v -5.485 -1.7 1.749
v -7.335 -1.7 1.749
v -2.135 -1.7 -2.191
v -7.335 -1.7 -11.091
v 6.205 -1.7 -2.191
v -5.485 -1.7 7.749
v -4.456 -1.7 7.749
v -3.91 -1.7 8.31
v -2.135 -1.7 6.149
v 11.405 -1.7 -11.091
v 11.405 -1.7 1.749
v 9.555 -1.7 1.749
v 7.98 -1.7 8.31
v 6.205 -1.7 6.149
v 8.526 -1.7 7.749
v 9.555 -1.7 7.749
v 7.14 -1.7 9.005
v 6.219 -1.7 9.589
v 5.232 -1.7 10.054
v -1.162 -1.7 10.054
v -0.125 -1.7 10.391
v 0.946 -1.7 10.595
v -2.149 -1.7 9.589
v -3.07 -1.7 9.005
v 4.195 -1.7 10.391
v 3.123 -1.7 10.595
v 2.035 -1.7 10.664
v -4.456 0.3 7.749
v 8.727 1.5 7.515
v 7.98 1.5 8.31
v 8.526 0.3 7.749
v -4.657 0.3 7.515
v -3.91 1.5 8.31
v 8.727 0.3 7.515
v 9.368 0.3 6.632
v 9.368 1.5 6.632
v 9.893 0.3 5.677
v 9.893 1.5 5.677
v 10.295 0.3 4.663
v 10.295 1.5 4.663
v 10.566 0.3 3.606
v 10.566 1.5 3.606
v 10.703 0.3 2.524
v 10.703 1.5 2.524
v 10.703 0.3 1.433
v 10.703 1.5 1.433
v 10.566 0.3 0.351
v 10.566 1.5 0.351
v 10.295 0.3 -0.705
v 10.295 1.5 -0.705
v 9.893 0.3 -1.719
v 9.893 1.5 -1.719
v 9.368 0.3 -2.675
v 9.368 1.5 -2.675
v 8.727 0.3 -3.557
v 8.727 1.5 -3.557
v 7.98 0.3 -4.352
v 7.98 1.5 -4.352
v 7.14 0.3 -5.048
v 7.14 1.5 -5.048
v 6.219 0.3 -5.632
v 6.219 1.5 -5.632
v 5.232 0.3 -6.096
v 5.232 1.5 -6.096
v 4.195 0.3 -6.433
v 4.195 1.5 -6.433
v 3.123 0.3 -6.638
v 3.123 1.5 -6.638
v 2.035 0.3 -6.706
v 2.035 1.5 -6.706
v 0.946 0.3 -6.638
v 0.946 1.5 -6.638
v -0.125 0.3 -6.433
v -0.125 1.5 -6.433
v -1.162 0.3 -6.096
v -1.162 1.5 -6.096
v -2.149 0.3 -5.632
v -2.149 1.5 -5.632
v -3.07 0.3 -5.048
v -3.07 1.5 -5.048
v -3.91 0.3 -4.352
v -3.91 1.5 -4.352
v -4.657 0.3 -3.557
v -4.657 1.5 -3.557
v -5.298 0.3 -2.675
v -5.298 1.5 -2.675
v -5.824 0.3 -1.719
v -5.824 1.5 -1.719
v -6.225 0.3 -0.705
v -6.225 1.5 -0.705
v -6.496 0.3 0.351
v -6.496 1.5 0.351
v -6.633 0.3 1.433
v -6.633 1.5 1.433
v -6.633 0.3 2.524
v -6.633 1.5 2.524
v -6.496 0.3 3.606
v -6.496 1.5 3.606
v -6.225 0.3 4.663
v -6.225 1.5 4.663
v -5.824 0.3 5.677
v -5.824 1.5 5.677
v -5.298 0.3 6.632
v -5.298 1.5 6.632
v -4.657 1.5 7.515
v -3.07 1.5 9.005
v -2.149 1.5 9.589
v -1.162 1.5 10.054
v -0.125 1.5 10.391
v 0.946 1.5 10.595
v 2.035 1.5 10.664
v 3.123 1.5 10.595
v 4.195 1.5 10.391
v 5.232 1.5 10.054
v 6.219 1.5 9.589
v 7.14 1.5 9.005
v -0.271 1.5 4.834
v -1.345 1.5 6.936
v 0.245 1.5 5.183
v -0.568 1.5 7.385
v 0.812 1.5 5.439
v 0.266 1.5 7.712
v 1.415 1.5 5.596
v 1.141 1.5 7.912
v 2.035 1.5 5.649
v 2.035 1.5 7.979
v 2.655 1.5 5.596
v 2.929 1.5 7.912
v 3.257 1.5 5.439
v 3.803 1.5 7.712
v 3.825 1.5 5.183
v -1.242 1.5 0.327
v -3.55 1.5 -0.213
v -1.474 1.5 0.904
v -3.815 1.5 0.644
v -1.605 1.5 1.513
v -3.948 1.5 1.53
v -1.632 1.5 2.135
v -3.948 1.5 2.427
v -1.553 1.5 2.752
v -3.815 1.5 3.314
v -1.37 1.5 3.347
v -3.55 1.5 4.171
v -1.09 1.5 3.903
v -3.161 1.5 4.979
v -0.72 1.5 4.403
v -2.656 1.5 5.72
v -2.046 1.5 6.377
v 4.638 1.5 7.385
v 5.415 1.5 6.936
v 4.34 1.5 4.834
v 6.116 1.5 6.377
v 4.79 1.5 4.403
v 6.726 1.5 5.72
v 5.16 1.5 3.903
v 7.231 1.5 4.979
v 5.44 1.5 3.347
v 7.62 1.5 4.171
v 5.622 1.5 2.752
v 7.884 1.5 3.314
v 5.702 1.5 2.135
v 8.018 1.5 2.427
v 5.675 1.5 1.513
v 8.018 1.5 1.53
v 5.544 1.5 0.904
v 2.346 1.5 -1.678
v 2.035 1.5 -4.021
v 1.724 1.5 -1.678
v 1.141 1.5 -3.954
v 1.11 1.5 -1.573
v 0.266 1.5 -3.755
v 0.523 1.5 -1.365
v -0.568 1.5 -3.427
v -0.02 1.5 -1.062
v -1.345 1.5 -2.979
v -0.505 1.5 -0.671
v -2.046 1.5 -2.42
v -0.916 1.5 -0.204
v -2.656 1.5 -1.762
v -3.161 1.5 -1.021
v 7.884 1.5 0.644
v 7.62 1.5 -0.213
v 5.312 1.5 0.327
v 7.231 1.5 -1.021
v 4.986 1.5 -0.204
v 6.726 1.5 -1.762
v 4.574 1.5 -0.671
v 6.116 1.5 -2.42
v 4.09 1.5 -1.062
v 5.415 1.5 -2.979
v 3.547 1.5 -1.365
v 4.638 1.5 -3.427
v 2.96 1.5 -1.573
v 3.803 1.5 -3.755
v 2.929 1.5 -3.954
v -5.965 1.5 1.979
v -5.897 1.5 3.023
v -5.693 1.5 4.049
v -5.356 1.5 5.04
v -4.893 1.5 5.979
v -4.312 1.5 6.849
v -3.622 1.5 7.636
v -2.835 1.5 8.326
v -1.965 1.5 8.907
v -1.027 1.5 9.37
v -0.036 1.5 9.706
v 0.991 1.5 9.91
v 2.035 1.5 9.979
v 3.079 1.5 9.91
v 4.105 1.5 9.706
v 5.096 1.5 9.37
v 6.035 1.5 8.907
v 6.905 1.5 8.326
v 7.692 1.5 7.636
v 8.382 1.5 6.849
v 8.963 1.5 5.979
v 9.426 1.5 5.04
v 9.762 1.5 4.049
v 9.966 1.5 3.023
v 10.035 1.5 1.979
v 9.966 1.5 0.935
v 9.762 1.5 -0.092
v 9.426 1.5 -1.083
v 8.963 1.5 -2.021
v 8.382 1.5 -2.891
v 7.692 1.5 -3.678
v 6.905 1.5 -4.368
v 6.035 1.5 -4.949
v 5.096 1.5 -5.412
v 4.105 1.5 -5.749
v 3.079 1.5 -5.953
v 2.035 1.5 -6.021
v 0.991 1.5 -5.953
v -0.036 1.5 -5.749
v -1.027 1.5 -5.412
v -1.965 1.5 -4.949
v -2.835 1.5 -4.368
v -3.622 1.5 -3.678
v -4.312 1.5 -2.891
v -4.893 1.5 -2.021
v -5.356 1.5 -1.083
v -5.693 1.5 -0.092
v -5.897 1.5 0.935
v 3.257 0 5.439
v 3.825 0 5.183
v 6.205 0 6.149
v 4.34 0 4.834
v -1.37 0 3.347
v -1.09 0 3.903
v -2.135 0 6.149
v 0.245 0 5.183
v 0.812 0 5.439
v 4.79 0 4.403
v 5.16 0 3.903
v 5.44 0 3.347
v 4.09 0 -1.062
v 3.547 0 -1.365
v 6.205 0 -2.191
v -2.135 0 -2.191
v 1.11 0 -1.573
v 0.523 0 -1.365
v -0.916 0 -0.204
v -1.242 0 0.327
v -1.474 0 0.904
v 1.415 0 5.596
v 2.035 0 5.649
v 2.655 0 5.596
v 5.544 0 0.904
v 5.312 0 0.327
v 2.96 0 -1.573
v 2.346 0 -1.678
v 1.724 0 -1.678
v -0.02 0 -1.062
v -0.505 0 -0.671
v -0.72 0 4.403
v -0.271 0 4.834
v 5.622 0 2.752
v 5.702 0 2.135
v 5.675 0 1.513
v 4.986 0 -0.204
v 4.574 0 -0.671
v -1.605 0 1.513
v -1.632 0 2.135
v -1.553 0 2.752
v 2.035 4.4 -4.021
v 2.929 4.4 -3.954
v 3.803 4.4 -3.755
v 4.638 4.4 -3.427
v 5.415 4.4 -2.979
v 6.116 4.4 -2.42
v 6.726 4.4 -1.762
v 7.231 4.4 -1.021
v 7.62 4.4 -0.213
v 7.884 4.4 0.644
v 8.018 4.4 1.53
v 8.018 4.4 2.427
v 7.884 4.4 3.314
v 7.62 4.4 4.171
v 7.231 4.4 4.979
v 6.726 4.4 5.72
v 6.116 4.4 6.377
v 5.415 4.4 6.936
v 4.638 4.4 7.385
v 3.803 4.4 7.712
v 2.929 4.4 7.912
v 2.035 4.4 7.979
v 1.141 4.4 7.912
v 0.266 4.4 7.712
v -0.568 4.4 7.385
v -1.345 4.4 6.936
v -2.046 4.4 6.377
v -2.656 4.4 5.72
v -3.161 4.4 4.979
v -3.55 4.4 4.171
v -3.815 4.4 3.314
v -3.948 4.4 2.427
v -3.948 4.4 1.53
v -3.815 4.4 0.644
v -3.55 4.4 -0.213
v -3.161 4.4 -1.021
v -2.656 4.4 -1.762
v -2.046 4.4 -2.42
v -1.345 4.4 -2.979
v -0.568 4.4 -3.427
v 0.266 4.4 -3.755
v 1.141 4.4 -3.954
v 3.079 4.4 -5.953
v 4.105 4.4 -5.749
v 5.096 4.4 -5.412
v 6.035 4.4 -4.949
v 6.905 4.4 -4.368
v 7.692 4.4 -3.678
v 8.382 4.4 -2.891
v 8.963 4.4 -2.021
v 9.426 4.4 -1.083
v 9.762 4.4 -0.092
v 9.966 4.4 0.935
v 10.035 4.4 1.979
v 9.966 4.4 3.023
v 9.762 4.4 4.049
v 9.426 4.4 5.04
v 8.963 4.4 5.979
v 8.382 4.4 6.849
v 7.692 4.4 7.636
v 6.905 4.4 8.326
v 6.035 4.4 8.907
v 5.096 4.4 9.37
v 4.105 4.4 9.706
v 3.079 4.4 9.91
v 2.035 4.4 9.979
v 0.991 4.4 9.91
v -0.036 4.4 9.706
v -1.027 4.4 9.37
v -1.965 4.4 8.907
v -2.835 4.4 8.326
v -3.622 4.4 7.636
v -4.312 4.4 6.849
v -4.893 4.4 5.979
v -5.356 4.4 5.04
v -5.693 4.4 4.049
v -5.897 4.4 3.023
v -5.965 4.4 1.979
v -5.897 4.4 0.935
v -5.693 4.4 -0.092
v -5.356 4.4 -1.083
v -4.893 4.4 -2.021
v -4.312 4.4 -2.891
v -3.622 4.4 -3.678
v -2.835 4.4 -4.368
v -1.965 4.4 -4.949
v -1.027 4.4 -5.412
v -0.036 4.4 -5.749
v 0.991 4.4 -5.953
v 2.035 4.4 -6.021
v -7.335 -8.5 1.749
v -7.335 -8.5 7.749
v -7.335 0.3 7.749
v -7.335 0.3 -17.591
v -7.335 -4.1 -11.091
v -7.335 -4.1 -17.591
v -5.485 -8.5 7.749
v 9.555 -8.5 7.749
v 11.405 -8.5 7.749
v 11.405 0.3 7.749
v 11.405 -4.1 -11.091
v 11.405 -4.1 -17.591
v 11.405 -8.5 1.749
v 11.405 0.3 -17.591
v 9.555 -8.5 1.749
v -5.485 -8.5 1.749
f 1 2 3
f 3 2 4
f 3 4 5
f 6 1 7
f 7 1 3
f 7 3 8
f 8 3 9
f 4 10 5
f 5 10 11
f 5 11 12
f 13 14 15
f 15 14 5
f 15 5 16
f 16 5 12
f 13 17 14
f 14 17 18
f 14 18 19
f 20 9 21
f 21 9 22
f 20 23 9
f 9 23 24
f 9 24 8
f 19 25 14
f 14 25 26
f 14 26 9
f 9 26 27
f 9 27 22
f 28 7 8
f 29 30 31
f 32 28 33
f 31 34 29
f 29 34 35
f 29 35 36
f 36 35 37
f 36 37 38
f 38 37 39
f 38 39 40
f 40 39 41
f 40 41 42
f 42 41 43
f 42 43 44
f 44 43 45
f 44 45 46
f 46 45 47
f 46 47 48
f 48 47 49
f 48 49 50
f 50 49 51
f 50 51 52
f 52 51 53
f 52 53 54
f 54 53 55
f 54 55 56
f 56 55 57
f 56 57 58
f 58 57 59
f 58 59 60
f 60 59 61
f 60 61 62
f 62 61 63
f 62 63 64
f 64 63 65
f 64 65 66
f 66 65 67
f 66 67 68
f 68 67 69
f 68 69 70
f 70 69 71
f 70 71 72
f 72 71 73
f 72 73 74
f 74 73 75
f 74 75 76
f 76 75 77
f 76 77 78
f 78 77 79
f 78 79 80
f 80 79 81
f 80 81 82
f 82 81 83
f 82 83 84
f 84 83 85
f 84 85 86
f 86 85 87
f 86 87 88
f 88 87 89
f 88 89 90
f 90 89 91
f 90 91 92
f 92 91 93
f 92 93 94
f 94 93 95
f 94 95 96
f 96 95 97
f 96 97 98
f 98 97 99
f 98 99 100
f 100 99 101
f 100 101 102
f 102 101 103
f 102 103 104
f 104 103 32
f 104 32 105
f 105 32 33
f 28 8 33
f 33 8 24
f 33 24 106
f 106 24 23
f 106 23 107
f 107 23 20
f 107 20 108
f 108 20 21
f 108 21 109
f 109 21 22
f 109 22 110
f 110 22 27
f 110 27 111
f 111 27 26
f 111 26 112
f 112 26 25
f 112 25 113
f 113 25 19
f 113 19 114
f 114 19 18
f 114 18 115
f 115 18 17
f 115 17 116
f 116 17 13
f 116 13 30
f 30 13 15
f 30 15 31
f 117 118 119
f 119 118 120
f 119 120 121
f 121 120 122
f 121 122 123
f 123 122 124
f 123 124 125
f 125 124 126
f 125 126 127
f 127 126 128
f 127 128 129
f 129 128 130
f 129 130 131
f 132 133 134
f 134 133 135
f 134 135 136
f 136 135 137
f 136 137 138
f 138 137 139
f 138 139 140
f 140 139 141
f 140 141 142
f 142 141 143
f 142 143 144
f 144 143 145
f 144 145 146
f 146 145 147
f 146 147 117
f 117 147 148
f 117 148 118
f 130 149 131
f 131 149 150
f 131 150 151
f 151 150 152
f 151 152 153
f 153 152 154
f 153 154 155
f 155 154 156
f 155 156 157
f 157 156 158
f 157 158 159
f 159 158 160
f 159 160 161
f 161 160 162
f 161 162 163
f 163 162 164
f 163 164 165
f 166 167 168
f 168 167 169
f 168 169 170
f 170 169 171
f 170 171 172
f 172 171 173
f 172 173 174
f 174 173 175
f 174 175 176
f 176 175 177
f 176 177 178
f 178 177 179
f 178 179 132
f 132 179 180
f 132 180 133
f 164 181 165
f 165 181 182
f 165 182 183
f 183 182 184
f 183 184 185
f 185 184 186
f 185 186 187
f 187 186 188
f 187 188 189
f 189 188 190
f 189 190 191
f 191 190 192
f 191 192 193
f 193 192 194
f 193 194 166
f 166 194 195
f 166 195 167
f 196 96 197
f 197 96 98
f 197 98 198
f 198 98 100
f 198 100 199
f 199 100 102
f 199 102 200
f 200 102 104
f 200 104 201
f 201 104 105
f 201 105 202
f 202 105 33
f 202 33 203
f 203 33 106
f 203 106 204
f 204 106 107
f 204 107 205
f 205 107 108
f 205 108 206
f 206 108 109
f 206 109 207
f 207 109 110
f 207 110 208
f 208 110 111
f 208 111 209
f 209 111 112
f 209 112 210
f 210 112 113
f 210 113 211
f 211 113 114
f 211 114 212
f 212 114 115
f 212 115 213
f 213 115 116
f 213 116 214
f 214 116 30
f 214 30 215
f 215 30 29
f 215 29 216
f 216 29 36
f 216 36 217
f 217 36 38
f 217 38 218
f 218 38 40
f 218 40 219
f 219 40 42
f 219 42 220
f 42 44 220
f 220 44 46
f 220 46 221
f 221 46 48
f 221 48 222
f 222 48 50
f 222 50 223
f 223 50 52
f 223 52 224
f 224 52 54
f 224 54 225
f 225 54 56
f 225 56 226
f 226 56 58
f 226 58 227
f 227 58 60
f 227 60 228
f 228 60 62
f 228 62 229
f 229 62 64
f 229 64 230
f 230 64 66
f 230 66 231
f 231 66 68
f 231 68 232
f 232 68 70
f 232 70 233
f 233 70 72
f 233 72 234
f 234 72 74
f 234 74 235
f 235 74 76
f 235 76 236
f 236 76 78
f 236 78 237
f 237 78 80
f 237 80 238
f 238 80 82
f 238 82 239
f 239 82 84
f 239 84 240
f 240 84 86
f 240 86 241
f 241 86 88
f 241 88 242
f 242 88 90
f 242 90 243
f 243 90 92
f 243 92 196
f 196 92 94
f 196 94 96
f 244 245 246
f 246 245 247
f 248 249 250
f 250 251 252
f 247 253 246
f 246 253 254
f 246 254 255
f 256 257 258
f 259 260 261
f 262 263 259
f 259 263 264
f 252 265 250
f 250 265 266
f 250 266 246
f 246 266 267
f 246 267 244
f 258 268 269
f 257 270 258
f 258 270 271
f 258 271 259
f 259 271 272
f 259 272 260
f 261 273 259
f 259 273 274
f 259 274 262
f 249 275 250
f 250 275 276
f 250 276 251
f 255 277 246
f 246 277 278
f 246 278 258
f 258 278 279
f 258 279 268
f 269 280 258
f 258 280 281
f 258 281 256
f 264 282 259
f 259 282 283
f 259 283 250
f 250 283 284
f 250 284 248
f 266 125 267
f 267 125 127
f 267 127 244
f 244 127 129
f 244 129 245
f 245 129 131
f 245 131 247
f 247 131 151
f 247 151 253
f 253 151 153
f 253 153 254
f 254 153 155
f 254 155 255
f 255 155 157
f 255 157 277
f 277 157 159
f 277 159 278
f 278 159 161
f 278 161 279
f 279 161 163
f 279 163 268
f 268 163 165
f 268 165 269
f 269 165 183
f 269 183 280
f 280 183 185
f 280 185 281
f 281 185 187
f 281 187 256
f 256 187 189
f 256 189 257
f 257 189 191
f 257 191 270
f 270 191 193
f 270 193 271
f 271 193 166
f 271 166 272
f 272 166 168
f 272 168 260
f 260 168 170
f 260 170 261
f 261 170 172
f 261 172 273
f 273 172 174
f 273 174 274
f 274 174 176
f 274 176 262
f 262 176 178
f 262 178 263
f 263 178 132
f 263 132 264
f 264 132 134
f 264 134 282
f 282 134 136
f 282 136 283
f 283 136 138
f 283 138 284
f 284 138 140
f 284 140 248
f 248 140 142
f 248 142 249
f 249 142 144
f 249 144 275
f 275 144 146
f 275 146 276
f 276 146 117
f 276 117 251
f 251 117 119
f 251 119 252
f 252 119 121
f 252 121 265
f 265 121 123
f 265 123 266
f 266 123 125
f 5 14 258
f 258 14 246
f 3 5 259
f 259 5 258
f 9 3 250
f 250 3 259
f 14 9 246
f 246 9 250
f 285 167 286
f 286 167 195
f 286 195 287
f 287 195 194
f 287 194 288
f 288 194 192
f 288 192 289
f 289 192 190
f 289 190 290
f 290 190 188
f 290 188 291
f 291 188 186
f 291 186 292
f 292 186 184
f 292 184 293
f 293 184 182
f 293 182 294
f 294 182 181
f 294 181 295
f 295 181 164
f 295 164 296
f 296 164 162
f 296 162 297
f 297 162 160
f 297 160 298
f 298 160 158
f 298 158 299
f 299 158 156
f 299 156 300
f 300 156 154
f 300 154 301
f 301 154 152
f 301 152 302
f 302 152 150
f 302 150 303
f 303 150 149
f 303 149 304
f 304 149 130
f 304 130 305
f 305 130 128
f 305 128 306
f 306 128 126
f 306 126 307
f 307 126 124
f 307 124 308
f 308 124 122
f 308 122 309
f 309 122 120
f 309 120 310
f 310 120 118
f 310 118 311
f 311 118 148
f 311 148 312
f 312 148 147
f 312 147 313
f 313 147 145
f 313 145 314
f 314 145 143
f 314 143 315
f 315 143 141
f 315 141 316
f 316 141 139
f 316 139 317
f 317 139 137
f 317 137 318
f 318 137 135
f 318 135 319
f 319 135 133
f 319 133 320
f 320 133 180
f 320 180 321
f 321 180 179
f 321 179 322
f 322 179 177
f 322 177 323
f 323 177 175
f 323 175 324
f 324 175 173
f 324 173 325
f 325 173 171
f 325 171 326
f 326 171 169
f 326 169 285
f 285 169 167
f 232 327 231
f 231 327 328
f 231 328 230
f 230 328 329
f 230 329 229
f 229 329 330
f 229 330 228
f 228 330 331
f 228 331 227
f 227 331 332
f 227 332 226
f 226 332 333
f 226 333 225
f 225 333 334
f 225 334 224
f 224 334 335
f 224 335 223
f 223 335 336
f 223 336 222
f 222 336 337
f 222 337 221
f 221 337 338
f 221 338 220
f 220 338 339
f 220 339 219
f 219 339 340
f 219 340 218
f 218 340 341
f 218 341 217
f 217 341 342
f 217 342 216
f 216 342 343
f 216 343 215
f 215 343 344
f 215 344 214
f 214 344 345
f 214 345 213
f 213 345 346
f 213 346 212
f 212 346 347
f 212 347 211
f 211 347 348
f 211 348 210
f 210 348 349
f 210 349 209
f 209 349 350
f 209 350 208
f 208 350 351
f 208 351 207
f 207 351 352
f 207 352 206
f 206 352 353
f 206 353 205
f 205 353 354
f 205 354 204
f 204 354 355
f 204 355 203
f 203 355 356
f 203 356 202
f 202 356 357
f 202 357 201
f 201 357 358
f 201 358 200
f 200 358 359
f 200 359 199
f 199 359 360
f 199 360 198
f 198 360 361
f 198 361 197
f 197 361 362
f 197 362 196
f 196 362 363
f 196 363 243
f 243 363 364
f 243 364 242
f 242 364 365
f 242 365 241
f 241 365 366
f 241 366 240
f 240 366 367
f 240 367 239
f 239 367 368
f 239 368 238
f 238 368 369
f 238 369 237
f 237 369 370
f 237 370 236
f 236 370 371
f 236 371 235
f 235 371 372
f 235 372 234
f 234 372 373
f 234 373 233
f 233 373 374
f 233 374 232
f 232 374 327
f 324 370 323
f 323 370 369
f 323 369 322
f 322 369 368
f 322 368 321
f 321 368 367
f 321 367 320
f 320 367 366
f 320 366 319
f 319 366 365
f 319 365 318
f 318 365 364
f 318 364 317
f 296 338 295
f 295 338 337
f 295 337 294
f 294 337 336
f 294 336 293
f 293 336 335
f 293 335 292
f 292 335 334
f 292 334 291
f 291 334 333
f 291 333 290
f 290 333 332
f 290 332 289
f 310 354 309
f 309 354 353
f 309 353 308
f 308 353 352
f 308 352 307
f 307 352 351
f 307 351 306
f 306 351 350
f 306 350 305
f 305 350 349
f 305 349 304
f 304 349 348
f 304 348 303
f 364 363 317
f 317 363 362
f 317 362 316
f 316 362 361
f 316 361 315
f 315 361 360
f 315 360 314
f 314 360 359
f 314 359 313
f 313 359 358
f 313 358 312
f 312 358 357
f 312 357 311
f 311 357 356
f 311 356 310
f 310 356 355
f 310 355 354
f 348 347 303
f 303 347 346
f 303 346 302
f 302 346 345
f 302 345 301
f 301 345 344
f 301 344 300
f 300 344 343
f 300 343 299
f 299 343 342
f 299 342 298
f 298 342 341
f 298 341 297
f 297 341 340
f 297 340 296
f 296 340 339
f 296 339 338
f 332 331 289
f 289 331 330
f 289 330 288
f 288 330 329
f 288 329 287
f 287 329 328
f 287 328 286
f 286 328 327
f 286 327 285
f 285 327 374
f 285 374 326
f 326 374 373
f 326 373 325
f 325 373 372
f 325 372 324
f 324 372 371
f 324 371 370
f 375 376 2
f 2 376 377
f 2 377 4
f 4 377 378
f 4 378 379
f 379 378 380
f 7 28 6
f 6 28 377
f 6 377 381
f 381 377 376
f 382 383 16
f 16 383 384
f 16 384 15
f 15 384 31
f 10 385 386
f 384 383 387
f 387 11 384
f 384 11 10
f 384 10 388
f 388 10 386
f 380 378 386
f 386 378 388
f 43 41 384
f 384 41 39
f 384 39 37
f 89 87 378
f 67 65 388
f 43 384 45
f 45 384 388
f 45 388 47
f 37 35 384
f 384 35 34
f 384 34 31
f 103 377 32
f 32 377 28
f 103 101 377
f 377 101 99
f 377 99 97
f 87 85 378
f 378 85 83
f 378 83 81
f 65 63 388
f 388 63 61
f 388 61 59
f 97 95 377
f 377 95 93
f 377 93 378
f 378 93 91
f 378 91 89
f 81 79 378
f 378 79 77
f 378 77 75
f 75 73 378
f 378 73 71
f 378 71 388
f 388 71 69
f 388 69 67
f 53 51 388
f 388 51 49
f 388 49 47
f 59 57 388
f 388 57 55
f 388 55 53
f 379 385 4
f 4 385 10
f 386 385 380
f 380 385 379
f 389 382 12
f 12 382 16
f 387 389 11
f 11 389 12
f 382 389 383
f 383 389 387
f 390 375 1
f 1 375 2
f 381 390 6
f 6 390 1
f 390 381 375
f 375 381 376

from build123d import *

# Parameters (mm, degrees)
SKETCH2_W           = 8.34
SKETCH2_H           = 8.34
BOSS_EXTRUDE2_DEPTH = 1.5
CUT_EXTRUDE1_DEPTH  = 1.5
BOSS_EXTRUDE4_DEPTH = 3.2
SKETCH6_R           = 8.685
SKETCH6_W           = 11.34
SKETCH6_H           = 11.34
BOSS_EXTRUDE5_DEPTH = 3.2
SKETCH8_R           = 8
SKETCH8_R_2         = 6
BOSS_EXTRUDE6_DEPTH = 2.9
BOSS_EXTRUDE7_START = -2
BOSS_EXTRUDE7_DEPTH = 2
SKETCH11_W          = 18.74
SKETCH11_H          = 6.5
BOSS_EXTRUDE8_DEPTH = 2.4
SKETCH12_W          = 1.85
SKETCH12_H          = 6
BOSS_EXTRUDE9_DEPTH = 6.8


with BuildPart() as part:
    # Sketch2 → Boss-Extrude2 (new body)
    with BuildSketch(Plane(origin=(0, 0, 0), x_dir=(1, 0, 0), z_dir=(0, 1, 0))):
        with Locations((2.034857004, -1.978756257)):
            Rectangle(SKETCH2_W, SKETCH2_H)
    extrude(amount=BOSS_EXTRUDE2_DEPTH)

    # Sketch3 → Cut-Extrude1 (cut)
    with BuildSketch(Plane(origin=(0, 1.5, 0), x_dir=(1, 0, 0), z_dir=(0, 1, 0))):
        with BuildLine():
            ThreePointArc((5.704857004, -1.978756257), (4.629938891, 0.61632563), (2.034857004, 1.691243743))
            Line((2.034857004, 1.691243743), (2.034857004, -5.648756257))
            ThreePointArc((2.034857004, -5.648756257), (4.629938891, -4.573838143), (5.704857004, -1.978756257))
        make_face()
        with BuildLine():
            Line((2.034857004, -5.648756257), (2.034857004, 1.691243743))
            ThreePointArc((2.034857004, 1.691243743), (-1.635142996, -1.978756257), (2.034857004, -5.648756257))
        make_face()
    extrude(amount=-CUT_EXTRUDE1_DEPTH, mode=Mode.SUBTRACT)

    # Sketch5 → Boss-Extrude4 (add)
    with BuildSketch(Plane(origin=(0, 1.5, 0), x_dir=(1, 0, 0), z_dir=(0, 1, 0))):
        Polygon((-2.135142996, -6.148756257), (-2.135142996, 2.191243743), (-3.635142996, 2.191243743), (-3.635142996, -7.648756257), (6.204857004, -7.648756257), (6.204857004, -6.148756257), align=None)
        Polygon((7.704857004, 3.691243743), (7.704857004, -7.648756257), (6.204857004, -7.648756257), (6.204857004, -6.148756257), (6.204857004, 2.191243743), (-2.135142996, 2.191243743), (-3.635142996, 2.191243743), (-3.635142996, 3.691243743), align=None)
    extrude(amount=-BOSS_EXTRUDE4_DEPTH)

    # Sketch6 → Boss-Extrude5 (add)
    with BuildSketch(Plane(origin=(0, 1.5, 0), x_dir=(1, 0, 0), z_dir=(0, 1, 0))):
        with Locations(Location((2.034857004, -1.978756257, 0), (0, 0, 270))):
            Circle(SKETCH6_R)
        with Locations((2.034857004, -1.978756257)):
            Rectangle(SKETCH6_W, SKETCH6_H, mode=Mode.SUBTRACT)
    extrude(amount=-BOSS_EXTRUDE5_DEPTH)

    # Sketch8 → Boss-Extrude6 (add)
    with BuildSketch(Plane(origin=(0, 1.5, 0), x_dir=(1, 0, 0), z_dir=(0, 1, 0))):
        with Locations(Location((2.034857004, -1.978756257, 0), (0, 0, 90))):
            Circle(SKETCH8_R)
        with Locations(Location((2.034857004, -1.978756257, 0), (0, 0, 270))):
            Circle(SKETCH8_R_2, mode=Mode.SUBTRACT)
    extrude(amount=BOSS_EXTRUDE6_DEPTH)

    # Sketch10 → Boss-Extrude7 (add)
    with BuildSketch(Plane.XZ.offset(1.7).offset(BOSS_EXTRUDE7_START)):
        with BuildLine():
            Line((6.204857004, -17.591243743), (6.204857004, -5.639663855))
            ThreePointArc((6.204857004, -5.639663855), (-4.10636539, -4.162466138), (-5.583563108, 6.148756257))
            Line((-5.583563108, 6.148756257), (-7.335142996, 6.148756257))
            Line((-7.335142996, 6.148756257), (-7.335142996, -17.591243743))
            Line((-7.335142996, -17.591243743), (6.204857004, -17.591243743))
        make_face()
        with BuildLine():
            Line((-7.335142996, 6.148756257), (-5.583563108, 6.148756257))
            ThreePointArc((-5.583563108, 6.148756257), (-5.065192067, 6.980608732), (-4.456392875, 7.748756257))
            Line((-4.456392875, 7.748756257), (-7.335142996, 7.748756257))
            Line((-7.335142996, 7.748756257), (-7.335142996, 6.148756257))
        make_face()
        with BuildLine():
            ThreePointArc((8.526106884, 7.748756257), (9.134906076, 6.980608732), (9.653277116, 6.148756257))
            Line((9.653277116, 6.148756257), (11.404857004, 6.148756257))
            Line((11.404857004, 6.148756257), (11.404857004, 7.748756257))
            Line((11.404857004, 7.748756257), (8.526106884, 7.748756257))
        make_face()
        with BuildLine():
            ThreePointArc((10.719857004, 1.978756257), (9.506325233, -2.449153804), (6.204857004, -5.639663855))
            Line((6.204857004, -5.639663855), (6.204857004, -17.591243743))
            Line((6.204857004, -17.591243743), (11.404857004, -17.591243743))
            Line((11.404857004, -17.591243743), (11.404857004, 6.148756257))
            Line((11.404857004, 6.148756257), (9.653277116, 6.148756257))
            ThreePointArc((9.653277116, 6.148756257), (10.448988084, 4.130876877), (10.719857004, 1.978756257))
        make_face()
    extrude(amount=BOSS_EXTRUDE7_DEPTH)

    # Sketch11 → Boss-Extrude8 (add)
    with BuildSketch(Plane.XZ.offset(1.7)):
        with Locations((2.034857004, -14.341243743)):
            Rectangle(SKETCH11_W, SKETCH11_H)
    extrude(amount=BOSS_EXTRUDE8_DEPTH)

    # Sketch12 → Boss-Extrude9 (add)
    with BuildSketch(Plane.XZ.offset(1.7)):
        with Locations((-6.410142996, 4.748756257)):
            Rectangle(SKETCH12_W, SKETCH12_H)
        with Locations((10.479857004, 4.748756257)):
            Rectangle(SKETCH12_W, SKETCH12_H)
    extrude(amount=BOSS_EXTRUDE9_DEPTH)


solid = part.part
